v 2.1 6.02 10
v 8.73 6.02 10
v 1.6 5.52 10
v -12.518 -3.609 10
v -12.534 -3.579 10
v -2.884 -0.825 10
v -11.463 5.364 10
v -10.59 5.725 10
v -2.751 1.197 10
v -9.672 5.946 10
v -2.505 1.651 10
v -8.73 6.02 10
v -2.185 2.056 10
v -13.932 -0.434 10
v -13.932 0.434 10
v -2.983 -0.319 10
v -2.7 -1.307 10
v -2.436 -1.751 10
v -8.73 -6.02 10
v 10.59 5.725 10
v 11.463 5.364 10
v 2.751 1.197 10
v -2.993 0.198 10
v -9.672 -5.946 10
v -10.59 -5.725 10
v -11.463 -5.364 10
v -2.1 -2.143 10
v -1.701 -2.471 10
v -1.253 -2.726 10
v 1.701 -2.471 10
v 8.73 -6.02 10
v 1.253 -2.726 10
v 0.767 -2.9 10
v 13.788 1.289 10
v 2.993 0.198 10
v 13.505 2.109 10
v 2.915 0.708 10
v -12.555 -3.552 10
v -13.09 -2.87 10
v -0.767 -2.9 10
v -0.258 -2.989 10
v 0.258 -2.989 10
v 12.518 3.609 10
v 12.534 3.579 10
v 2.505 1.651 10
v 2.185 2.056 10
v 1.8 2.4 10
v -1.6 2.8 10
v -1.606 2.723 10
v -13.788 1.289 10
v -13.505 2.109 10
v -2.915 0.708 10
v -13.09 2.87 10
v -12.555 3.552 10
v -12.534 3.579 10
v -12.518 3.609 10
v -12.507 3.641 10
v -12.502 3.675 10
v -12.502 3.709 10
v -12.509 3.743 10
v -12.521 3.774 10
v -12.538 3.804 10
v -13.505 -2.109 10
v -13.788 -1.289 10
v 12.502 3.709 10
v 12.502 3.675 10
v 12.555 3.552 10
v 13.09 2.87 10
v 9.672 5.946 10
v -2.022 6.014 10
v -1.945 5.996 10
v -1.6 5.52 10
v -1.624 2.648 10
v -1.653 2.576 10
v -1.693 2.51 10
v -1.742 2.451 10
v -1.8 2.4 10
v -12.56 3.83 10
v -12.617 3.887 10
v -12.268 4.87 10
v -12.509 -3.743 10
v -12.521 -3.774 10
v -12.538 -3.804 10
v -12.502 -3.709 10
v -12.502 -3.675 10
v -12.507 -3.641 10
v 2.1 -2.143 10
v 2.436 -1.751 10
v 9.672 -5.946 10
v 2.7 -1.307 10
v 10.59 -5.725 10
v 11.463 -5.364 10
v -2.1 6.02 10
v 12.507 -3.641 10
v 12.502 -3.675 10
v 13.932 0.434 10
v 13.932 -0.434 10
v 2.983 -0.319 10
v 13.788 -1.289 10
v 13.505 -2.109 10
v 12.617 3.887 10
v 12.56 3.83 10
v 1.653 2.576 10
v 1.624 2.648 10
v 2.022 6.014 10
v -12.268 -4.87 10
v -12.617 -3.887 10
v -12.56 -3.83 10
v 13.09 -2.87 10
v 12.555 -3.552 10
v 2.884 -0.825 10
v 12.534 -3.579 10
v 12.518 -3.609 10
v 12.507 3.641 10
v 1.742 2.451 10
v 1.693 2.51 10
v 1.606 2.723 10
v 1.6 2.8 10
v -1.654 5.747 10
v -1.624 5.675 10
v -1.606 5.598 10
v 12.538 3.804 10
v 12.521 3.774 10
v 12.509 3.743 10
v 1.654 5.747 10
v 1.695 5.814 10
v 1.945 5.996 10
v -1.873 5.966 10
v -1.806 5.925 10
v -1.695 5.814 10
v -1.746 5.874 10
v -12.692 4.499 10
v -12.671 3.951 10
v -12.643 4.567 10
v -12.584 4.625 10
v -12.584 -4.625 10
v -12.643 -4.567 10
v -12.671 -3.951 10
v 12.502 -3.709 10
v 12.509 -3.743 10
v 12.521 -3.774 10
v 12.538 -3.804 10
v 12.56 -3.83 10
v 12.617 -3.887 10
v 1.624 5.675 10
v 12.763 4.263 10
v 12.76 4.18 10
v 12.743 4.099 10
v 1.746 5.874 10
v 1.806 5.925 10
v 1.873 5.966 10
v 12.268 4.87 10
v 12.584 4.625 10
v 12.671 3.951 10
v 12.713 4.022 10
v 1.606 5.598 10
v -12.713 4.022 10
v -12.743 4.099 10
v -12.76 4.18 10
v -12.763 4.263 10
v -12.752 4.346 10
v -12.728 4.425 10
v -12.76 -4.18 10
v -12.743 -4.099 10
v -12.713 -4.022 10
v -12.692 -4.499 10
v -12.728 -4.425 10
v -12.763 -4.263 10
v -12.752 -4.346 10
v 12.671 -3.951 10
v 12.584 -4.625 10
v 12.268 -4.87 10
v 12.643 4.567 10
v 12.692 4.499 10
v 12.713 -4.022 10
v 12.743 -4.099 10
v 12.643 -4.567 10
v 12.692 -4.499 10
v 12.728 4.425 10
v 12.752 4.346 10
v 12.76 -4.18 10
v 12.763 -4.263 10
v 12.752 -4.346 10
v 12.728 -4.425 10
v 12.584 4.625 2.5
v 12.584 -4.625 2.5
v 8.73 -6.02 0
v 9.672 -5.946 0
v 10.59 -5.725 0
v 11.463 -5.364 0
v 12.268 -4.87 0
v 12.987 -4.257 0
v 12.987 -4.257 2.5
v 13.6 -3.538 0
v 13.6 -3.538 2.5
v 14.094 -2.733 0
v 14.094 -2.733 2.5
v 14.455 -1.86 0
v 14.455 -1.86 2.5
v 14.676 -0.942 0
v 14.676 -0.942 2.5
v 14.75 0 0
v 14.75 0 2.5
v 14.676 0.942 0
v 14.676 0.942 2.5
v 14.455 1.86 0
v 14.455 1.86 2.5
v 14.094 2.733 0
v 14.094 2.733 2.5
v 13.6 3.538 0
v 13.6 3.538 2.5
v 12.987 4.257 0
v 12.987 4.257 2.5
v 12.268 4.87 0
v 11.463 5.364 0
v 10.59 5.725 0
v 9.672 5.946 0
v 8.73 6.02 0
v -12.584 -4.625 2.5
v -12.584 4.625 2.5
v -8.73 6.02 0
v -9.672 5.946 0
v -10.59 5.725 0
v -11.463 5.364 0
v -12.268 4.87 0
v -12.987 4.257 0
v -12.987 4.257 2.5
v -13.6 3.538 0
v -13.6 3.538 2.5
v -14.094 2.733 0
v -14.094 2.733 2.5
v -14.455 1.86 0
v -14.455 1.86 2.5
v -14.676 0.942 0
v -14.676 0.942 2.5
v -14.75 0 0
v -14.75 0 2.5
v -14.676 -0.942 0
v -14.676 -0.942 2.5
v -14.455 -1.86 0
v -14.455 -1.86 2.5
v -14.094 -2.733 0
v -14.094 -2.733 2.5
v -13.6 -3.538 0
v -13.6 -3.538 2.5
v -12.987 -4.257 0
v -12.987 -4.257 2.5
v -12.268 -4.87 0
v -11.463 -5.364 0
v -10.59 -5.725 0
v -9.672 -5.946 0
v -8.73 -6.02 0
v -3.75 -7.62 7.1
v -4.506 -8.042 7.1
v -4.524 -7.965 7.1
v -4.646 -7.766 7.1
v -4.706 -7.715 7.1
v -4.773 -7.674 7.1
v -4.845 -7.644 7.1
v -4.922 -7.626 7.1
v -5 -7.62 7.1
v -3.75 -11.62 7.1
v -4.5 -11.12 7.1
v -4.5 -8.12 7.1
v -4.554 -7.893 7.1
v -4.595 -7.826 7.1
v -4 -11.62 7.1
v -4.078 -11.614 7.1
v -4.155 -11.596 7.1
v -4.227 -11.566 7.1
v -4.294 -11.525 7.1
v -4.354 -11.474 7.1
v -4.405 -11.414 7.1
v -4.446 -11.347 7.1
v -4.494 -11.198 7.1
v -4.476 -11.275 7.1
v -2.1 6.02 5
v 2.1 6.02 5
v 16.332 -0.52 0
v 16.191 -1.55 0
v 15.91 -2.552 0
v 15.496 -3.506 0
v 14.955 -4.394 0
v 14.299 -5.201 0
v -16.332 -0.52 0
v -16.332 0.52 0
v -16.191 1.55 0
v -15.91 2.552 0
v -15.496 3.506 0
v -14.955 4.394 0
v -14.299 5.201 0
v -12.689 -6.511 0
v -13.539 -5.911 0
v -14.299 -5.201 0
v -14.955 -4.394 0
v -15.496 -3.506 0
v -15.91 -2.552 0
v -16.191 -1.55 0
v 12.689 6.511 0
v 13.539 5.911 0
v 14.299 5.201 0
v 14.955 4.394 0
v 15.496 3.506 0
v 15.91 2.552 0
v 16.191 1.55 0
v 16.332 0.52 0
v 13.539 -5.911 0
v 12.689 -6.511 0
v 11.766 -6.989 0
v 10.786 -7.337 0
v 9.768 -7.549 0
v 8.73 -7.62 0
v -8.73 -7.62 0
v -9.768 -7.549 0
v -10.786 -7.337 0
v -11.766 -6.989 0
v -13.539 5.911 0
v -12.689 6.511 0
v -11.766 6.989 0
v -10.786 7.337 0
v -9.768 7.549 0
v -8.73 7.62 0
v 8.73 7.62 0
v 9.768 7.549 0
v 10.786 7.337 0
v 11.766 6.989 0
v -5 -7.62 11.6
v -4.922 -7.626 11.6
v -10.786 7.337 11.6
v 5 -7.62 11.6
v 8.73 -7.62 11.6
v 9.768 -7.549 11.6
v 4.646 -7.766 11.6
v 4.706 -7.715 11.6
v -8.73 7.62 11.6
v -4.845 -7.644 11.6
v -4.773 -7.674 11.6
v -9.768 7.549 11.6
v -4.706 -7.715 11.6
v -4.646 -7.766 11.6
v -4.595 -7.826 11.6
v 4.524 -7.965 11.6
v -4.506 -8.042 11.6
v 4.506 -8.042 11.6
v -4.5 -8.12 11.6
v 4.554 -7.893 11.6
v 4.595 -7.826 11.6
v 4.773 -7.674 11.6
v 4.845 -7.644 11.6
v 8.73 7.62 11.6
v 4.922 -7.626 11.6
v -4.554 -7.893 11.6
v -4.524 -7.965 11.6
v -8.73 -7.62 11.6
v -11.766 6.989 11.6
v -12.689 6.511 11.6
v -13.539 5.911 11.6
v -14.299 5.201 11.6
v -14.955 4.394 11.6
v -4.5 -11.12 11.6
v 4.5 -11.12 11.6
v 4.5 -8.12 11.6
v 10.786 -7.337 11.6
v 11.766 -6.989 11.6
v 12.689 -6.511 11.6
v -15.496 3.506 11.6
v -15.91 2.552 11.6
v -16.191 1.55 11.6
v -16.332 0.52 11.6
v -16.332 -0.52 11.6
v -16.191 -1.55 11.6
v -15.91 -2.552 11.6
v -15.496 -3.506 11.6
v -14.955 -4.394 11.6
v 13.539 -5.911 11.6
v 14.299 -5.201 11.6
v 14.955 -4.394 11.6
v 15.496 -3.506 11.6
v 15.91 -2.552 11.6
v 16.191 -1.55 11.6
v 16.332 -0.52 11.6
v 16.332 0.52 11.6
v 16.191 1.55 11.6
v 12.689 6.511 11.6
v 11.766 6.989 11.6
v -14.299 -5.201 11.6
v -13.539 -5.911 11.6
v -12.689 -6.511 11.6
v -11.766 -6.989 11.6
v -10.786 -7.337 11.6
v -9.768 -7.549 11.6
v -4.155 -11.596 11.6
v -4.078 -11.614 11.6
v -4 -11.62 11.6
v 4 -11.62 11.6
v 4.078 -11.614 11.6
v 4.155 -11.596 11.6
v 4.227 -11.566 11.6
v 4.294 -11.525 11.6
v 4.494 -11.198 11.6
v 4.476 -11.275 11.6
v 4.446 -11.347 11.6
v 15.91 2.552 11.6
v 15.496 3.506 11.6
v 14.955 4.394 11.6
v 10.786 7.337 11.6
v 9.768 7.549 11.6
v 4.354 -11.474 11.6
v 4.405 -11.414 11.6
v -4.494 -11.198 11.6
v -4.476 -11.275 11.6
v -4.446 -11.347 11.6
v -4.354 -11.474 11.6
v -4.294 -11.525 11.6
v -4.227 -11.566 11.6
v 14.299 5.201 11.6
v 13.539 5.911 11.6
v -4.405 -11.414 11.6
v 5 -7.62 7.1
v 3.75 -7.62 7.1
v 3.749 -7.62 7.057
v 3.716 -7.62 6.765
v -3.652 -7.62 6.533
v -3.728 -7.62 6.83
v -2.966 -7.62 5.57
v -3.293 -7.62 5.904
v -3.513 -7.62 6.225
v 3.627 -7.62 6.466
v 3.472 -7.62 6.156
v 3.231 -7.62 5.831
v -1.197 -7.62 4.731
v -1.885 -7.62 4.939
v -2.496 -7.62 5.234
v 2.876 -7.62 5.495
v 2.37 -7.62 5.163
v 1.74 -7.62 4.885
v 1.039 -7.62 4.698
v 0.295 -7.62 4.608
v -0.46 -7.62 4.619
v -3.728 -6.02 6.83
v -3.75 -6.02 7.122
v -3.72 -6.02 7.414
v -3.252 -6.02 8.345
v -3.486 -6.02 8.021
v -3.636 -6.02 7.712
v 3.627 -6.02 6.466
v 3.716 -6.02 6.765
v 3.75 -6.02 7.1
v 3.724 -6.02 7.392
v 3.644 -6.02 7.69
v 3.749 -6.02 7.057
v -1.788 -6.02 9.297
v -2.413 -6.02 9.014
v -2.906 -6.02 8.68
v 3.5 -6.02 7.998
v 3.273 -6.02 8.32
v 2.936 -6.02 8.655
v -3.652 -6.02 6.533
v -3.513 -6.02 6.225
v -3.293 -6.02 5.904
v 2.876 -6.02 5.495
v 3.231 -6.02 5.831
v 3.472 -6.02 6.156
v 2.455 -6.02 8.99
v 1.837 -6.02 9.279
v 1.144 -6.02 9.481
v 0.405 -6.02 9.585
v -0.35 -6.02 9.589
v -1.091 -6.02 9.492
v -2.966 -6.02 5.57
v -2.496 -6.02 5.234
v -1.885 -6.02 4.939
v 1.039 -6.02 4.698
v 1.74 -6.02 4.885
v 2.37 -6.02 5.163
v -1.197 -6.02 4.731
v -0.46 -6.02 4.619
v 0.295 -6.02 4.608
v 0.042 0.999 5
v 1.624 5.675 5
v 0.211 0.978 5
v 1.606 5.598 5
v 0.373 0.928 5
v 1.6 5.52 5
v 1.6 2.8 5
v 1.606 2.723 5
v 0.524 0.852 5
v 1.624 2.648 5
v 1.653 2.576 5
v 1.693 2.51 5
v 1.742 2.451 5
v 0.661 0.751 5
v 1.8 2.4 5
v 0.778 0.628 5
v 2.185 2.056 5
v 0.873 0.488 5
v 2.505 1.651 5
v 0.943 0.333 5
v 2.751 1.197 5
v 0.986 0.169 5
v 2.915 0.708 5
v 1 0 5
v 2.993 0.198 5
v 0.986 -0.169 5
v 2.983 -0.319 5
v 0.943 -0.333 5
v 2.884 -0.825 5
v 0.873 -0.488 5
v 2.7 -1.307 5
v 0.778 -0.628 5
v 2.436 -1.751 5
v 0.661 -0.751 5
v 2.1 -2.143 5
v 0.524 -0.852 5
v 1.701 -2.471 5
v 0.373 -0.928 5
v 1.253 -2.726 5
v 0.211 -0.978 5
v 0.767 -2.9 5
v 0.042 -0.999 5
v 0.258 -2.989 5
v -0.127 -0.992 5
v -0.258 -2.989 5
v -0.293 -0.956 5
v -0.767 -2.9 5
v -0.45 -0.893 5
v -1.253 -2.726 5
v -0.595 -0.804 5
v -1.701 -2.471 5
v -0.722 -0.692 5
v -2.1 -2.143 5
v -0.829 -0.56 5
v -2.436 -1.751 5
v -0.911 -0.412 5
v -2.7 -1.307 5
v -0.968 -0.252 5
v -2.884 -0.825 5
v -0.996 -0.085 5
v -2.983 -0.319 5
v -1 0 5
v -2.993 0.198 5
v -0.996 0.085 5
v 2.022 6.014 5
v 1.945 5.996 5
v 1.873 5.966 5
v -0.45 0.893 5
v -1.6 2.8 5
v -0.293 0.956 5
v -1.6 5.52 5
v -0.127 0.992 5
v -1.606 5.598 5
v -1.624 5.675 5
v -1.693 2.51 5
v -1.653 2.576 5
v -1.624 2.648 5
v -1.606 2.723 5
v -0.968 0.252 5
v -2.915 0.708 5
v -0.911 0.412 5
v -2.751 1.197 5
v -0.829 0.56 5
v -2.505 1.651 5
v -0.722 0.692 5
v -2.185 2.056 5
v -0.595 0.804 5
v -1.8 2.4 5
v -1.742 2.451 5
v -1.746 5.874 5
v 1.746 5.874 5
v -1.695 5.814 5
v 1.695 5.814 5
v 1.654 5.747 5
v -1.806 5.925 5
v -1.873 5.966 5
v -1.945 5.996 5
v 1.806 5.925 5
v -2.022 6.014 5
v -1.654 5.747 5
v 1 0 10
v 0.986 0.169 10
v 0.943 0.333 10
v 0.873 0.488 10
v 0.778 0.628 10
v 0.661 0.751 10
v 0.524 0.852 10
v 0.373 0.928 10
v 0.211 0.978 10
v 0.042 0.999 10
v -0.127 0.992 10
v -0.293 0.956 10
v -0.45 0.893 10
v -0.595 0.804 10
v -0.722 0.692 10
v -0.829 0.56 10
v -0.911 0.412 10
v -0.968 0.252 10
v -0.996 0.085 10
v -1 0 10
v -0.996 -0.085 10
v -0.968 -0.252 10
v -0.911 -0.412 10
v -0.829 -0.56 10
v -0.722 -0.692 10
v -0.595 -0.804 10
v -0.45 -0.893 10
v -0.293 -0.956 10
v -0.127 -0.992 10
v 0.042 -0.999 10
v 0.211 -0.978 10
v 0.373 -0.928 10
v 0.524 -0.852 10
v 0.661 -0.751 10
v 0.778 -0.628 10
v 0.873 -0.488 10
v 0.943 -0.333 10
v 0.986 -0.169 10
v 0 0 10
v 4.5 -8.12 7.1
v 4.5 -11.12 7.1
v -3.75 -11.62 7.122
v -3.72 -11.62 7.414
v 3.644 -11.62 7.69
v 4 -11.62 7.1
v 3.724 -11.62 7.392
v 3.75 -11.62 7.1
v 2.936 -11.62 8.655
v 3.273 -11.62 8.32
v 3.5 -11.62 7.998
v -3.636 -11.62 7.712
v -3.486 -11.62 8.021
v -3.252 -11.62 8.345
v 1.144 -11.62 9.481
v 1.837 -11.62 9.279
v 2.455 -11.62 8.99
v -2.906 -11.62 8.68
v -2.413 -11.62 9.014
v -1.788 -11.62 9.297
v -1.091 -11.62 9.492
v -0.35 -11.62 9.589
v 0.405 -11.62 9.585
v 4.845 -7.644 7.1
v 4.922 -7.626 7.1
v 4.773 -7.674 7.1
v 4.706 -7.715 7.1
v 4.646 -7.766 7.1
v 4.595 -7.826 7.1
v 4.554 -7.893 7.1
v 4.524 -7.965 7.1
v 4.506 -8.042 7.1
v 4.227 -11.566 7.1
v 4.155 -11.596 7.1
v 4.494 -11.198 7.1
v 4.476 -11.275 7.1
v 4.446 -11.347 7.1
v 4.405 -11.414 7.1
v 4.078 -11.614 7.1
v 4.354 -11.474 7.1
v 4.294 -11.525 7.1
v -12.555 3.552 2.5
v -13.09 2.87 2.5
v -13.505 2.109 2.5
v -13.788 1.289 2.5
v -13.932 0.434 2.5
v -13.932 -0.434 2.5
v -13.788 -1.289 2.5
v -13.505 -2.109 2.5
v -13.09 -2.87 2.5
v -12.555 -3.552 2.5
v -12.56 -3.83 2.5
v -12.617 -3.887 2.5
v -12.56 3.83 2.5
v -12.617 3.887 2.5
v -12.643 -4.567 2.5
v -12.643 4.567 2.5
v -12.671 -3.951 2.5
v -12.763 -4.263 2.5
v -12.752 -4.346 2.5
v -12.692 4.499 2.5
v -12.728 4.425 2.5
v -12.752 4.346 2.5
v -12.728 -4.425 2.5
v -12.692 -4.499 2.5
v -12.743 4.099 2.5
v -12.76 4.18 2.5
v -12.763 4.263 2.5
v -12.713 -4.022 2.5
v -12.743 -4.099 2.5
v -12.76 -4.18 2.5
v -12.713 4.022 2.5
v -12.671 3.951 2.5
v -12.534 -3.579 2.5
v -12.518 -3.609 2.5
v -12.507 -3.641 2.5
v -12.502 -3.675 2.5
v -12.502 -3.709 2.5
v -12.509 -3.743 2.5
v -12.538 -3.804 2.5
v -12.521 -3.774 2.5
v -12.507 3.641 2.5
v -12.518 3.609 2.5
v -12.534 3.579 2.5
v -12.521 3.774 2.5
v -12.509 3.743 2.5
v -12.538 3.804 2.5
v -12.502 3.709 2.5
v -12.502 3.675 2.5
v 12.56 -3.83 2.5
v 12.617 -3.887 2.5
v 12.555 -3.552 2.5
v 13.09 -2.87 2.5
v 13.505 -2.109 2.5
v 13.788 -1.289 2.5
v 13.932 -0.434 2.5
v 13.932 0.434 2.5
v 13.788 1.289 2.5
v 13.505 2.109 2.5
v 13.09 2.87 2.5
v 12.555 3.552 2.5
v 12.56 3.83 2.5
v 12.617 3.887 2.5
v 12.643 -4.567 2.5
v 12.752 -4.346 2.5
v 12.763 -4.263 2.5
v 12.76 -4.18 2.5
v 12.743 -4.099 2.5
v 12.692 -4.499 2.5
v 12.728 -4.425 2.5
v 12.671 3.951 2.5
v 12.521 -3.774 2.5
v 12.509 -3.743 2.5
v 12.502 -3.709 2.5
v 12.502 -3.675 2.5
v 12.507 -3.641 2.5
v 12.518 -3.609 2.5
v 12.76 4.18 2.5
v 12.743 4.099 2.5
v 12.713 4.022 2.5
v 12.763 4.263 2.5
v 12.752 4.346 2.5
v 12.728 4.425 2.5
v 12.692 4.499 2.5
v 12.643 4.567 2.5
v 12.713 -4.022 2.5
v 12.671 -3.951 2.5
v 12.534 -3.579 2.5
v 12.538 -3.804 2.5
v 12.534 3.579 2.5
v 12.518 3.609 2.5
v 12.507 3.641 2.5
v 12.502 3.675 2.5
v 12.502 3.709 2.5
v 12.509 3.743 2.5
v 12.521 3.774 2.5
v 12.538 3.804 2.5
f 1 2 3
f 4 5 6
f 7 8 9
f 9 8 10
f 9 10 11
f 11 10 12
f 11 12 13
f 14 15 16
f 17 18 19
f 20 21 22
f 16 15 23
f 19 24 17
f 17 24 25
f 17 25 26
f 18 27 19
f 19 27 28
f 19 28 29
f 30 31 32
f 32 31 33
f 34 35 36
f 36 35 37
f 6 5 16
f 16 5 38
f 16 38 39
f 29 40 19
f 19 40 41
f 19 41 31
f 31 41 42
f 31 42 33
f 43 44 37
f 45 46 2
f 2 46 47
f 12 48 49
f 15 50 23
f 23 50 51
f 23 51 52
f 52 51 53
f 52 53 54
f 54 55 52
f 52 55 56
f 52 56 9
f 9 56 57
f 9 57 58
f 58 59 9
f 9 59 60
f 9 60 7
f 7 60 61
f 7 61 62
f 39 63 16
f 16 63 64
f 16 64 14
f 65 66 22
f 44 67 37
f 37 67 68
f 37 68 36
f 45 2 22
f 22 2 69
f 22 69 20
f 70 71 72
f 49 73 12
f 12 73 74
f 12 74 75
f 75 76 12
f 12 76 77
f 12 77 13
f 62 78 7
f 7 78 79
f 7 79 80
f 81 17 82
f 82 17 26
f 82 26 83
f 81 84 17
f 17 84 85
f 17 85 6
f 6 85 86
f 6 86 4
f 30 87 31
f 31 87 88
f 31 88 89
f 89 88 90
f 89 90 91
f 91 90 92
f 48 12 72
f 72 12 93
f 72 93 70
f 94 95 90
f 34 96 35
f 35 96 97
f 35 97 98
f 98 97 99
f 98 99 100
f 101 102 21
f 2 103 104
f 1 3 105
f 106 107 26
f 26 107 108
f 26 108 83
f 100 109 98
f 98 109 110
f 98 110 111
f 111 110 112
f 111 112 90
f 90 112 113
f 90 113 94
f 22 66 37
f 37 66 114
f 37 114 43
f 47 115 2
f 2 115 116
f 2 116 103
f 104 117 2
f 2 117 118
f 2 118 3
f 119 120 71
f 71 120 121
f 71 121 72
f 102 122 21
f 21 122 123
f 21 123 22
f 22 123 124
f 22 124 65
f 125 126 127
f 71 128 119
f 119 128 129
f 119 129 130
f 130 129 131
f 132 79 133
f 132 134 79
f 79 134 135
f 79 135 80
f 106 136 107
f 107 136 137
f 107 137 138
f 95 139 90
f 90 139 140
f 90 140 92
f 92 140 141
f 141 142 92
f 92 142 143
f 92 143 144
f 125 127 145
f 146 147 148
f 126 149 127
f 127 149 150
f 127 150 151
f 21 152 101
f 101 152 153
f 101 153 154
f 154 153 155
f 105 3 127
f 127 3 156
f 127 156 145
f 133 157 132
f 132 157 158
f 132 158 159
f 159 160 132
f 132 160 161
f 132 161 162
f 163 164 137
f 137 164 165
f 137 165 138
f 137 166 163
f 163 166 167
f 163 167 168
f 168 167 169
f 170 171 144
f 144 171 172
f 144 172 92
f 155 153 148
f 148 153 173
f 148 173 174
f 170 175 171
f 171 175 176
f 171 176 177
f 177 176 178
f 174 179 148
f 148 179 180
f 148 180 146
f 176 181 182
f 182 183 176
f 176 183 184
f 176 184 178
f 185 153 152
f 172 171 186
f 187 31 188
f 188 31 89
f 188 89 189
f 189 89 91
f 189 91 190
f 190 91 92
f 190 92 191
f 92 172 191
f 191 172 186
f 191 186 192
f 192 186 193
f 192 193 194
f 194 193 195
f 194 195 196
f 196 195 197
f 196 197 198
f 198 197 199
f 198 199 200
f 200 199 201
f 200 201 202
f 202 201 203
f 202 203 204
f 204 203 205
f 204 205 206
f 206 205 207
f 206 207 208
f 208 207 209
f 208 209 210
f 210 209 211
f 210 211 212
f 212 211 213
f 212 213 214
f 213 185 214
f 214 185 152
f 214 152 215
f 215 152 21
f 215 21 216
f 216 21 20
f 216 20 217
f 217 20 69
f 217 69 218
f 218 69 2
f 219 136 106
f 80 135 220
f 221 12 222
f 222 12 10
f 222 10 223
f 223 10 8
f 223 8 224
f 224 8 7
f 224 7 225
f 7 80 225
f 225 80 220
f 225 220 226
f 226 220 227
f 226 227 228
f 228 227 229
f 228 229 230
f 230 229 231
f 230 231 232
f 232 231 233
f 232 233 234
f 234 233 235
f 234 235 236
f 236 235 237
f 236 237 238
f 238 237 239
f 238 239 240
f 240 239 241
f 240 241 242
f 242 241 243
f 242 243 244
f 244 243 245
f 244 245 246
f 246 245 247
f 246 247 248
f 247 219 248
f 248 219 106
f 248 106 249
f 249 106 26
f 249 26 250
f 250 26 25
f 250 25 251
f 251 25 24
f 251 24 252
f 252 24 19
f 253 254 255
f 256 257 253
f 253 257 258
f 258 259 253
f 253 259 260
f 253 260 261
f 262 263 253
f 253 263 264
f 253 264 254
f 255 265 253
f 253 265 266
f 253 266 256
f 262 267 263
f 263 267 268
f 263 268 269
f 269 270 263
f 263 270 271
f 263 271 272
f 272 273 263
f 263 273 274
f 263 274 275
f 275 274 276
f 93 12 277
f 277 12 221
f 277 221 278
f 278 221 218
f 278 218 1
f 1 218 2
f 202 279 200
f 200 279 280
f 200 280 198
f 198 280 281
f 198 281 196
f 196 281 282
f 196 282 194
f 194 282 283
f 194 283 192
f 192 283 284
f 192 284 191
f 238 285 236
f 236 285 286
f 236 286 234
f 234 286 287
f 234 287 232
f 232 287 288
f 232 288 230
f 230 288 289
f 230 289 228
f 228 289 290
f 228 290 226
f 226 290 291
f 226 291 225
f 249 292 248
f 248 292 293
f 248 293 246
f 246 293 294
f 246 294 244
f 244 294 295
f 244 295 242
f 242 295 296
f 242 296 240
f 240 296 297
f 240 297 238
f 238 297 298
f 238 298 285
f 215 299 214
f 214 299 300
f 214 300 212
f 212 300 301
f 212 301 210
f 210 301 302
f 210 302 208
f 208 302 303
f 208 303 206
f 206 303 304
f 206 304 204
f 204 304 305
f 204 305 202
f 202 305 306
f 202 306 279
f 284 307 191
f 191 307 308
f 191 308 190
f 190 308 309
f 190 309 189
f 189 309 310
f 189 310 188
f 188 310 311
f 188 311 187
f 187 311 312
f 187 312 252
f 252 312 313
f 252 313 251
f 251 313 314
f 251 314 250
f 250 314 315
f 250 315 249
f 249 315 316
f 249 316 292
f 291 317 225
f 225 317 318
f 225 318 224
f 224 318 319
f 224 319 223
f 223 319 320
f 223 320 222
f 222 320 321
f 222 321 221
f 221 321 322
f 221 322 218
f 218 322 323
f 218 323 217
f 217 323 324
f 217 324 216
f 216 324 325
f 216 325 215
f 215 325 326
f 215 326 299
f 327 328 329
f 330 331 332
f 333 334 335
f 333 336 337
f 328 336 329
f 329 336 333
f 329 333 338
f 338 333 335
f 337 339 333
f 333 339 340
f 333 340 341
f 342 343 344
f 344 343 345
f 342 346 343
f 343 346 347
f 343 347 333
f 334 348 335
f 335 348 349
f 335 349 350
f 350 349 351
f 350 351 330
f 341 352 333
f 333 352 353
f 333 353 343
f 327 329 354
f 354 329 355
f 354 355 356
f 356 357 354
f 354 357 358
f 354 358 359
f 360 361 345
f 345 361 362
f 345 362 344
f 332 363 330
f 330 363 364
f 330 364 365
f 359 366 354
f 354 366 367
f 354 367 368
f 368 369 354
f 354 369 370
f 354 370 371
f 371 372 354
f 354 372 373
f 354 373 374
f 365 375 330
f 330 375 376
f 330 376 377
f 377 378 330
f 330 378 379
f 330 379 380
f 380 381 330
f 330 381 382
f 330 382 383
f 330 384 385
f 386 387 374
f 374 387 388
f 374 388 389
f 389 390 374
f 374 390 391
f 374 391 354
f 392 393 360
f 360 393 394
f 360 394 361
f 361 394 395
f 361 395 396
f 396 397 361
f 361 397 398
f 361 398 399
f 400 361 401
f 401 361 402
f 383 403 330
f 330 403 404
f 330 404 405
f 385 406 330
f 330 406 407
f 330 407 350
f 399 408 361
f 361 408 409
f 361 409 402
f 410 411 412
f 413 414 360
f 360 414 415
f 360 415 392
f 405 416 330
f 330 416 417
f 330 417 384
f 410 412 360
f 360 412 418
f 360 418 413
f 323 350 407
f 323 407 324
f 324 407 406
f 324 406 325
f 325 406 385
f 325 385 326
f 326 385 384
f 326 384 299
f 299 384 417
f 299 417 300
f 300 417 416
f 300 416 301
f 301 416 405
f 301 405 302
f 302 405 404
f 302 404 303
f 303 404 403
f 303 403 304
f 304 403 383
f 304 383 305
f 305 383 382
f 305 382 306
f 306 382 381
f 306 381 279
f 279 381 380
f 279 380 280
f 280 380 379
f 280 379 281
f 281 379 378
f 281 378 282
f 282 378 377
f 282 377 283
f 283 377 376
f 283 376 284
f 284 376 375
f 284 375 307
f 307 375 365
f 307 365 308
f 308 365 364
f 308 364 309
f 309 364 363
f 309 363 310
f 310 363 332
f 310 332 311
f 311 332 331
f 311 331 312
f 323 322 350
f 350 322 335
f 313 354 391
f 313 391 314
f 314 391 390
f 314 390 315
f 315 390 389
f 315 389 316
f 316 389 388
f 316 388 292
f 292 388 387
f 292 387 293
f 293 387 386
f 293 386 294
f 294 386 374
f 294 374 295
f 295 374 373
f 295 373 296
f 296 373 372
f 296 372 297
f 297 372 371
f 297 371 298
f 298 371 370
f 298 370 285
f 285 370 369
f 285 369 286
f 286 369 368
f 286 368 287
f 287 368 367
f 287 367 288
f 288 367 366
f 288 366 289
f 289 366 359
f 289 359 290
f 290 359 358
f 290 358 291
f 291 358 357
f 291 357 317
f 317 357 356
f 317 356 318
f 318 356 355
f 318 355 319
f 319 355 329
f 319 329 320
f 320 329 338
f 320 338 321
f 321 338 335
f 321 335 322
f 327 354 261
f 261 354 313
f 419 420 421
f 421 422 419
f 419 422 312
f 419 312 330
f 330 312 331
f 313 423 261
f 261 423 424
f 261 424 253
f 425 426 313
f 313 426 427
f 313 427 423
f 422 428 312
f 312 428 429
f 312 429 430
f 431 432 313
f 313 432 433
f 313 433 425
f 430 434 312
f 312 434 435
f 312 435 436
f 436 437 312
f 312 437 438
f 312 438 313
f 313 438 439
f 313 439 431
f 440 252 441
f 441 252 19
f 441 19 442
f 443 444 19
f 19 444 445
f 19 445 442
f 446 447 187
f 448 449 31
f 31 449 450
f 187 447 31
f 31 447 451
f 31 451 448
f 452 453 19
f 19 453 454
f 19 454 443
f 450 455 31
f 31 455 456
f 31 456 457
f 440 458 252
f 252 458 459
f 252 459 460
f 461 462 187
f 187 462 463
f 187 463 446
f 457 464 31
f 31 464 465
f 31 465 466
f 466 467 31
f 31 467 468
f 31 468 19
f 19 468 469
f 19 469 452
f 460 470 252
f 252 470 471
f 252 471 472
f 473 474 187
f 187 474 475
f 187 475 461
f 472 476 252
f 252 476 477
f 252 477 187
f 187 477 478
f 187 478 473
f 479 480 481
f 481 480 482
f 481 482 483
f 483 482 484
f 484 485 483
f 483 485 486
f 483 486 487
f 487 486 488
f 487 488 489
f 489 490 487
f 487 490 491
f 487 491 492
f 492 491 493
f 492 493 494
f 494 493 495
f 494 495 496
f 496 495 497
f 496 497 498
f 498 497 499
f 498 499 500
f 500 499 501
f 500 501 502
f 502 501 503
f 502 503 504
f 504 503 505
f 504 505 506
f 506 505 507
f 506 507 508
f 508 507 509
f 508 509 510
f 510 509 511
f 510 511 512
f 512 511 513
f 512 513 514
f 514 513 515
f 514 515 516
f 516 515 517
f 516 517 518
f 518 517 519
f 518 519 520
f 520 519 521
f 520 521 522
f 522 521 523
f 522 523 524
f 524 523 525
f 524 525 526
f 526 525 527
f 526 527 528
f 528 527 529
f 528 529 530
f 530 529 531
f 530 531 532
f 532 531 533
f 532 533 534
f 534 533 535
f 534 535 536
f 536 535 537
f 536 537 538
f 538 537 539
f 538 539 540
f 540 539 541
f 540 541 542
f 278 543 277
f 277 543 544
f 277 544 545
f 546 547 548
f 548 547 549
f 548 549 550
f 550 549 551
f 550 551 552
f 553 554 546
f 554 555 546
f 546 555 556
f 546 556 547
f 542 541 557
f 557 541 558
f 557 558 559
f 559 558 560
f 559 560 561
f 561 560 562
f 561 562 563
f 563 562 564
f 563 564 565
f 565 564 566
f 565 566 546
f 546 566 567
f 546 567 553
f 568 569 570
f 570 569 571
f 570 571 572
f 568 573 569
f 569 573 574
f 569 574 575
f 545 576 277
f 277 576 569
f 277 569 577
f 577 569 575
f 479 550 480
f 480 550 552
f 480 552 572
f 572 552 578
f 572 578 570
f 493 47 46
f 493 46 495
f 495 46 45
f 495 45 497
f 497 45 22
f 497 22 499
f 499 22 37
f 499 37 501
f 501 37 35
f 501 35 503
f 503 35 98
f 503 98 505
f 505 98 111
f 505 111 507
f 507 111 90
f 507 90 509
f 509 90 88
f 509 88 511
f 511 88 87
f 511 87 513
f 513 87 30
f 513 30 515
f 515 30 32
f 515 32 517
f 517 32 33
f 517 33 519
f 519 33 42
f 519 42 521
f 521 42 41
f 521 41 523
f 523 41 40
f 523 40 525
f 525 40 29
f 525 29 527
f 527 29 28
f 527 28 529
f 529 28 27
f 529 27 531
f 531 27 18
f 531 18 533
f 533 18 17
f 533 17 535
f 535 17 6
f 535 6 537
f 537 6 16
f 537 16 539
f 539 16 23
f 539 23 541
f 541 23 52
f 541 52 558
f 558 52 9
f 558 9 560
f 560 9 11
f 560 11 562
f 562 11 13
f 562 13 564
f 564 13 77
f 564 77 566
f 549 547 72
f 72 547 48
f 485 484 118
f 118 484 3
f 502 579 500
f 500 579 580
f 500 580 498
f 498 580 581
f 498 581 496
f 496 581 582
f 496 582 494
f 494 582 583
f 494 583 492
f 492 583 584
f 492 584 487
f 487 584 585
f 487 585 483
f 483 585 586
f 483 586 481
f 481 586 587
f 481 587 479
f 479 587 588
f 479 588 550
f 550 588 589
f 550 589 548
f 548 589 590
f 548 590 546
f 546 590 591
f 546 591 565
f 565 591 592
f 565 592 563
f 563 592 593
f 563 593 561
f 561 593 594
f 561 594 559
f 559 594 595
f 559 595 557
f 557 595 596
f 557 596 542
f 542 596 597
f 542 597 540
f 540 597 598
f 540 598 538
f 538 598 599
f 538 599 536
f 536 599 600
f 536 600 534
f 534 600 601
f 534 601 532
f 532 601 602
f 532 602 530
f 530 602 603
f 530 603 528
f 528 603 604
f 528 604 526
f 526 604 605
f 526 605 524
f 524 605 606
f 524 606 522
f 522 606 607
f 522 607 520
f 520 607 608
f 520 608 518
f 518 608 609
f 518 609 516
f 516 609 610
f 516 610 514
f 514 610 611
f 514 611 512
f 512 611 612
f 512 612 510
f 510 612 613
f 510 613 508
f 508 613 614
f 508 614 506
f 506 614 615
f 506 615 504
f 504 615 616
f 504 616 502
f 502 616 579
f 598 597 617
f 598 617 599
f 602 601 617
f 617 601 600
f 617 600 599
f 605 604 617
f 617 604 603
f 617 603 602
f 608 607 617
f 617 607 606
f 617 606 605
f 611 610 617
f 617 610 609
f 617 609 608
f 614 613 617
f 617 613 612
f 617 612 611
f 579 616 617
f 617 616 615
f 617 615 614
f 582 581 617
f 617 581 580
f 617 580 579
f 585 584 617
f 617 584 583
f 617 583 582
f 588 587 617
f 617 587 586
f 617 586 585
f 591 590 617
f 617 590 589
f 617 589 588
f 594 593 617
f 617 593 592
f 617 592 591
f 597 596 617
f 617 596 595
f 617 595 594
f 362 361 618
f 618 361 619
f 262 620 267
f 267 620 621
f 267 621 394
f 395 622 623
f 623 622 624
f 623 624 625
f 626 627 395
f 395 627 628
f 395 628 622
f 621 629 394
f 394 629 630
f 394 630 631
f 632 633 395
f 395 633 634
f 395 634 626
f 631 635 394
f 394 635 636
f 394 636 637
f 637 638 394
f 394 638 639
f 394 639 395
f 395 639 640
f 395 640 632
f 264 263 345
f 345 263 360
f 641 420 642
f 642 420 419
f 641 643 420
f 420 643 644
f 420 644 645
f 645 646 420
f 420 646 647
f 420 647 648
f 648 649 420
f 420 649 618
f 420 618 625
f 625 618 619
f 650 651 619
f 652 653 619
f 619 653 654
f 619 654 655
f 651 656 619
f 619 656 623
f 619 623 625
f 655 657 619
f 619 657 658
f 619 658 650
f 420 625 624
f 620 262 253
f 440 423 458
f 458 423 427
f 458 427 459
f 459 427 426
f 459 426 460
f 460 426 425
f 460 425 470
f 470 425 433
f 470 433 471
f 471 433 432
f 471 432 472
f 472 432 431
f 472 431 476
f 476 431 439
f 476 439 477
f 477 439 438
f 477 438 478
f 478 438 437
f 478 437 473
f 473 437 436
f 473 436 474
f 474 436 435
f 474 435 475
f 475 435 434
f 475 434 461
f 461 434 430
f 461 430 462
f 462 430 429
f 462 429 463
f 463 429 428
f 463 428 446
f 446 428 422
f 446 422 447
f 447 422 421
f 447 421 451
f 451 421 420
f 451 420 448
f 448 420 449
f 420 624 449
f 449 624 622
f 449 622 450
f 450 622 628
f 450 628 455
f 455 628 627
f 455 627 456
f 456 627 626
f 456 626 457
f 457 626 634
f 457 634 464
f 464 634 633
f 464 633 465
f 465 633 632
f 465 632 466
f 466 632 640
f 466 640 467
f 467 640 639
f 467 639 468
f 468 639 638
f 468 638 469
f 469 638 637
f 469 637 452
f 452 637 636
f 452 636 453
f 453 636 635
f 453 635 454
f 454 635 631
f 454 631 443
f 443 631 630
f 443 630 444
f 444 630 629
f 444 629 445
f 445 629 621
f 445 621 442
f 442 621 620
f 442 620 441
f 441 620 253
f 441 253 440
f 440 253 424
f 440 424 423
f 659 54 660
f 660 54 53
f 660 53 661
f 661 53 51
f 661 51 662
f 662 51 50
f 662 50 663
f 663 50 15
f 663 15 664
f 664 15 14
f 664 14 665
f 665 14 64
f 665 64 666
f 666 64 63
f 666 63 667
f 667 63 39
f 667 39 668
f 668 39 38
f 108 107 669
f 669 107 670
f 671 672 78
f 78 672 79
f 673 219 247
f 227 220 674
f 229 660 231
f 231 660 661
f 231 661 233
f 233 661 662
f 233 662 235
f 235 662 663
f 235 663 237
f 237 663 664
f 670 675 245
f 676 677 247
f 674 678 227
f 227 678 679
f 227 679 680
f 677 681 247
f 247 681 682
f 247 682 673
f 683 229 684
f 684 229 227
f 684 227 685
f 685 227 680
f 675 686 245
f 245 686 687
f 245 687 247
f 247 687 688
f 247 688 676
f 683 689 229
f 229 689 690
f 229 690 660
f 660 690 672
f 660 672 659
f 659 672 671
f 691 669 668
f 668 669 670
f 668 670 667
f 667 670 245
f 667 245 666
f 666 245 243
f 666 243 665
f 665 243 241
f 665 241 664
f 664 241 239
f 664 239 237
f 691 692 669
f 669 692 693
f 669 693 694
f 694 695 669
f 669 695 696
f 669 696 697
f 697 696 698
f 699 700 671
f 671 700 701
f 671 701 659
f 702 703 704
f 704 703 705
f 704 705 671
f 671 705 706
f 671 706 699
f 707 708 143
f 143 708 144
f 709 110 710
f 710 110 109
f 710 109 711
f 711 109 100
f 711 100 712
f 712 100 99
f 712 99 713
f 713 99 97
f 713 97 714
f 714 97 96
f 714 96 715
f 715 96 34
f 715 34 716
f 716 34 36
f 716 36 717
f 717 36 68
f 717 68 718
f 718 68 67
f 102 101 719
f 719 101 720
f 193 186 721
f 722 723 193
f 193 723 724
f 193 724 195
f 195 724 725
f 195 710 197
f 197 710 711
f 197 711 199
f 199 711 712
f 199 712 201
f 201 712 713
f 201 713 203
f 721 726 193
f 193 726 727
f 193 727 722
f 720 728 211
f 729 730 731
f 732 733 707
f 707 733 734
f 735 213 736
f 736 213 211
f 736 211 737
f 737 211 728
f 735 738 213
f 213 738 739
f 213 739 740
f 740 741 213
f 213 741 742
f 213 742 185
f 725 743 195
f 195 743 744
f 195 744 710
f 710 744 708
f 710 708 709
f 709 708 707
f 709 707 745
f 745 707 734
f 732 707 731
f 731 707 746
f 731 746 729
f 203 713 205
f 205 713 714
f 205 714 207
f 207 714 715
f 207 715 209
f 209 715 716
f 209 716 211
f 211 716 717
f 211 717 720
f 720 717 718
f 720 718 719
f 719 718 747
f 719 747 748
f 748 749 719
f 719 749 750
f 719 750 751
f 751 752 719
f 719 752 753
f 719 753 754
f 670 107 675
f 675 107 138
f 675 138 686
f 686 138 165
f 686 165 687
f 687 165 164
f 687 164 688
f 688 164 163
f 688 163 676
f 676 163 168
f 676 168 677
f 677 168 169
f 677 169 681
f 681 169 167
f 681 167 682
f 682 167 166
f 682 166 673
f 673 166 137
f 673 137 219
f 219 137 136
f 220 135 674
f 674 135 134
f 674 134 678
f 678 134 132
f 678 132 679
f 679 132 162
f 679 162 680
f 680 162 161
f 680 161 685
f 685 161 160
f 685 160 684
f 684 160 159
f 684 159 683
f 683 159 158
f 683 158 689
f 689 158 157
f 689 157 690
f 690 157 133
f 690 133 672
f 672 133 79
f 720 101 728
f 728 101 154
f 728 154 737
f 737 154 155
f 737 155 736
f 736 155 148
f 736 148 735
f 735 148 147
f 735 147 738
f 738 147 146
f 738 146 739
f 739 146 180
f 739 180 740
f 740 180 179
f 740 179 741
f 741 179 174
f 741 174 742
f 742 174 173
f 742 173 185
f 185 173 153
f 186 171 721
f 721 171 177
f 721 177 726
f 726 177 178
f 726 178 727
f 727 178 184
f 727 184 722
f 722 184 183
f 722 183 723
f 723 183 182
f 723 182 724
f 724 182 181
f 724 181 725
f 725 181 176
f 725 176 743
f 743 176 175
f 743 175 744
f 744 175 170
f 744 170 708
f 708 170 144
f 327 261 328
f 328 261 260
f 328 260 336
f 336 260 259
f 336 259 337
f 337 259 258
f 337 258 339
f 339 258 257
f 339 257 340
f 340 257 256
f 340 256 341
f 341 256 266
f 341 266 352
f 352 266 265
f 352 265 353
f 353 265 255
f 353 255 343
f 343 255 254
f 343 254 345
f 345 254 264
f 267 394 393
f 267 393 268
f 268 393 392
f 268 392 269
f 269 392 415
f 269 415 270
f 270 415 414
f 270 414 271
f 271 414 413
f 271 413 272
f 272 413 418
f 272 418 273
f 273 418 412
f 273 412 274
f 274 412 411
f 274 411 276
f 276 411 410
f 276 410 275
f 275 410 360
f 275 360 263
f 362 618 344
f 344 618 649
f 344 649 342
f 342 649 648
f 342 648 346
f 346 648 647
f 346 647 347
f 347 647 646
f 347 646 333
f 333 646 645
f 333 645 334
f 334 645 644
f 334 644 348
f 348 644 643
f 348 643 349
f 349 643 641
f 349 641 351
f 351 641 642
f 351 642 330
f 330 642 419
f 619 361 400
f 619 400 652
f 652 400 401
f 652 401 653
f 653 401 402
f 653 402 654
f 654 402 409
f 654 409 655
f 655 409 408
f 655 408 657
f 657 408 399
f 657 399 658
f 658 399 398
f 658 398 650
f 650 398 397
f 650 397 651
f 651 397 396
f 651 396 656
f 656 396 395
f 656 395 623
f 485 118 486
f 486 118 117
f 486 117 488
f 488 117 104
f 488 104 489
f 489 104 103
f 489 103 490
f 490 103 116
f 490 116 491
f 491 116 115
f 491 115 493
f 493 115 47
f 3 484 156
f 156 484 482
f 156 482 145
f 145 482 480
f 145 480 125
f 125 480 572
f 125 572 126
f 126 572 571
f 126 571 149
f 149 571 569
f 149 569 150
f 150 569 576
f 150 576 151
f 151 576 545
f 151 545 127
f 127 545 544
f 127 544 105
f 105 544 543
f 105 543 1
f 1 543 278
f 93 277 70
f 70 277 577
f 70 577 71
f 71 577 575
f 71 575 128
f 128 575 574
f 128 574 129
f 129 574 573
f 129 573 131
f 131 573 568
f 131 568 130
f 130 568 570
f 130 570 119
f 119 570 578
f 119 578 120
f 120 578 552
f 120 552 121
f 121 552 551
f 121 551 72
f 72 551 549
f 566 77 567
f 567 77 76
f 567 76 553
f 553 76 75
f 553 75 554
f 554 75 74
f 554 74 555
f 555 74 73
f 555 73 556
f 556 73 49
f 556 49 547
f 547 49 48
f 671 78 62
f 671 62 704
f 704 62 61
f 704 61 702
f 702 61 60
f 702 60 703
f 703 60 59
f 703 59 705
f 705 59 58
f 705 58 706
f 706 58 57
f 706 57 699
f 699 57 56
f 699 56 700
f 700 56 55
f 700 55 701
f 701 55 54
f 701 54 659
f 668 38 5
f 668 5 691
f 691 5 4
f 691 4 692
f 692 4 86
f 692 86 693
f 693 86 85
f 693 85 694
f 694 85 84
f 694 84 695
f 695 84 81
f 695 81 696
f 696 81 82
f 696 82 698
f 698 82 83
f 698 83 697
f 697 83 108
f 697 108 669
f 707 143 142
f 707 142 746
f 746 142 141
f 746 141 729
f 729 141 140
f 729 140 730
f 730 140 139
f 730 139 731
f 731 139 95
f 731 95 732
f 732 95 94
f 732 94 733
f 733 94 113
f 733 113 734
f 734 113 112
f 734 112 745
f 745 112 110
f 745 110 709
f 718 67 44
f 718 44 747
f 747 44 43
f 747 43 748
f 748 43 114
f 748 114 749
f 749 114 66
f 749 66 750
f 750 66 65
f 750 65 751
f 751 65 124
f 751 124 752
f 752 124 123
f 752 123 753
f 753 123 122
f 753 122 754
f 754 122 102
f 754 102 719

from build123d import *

# Parameters (mm, degrees)
THICKEN1_DEPTH      = 11.6
THICKEN1_START      = 10
THICKEN1_2_DEPTH    = 1.6
SKETCH2_R           = 1
BOSS_EXTRUDE1_DEPTH = 5
SKETCH3_W           = 9
SKETCH3_H           = 4
BOSS_EXTRUDE2_DEPTH = 4.5
CUT_EXTRUDE1_REACH  = 29.786
SKETCH4_RX          = 3.75
SKETCH4_RY          = 2.5
BOSS_EXTRUDE3_START = 7.5
BOSS_EXTRUDE3_DEPTH = 7.5
FILLET1_R           = 0.5
FILLET2_R           = 0.2


# Read off the part's stored shape, not the designer's step: Thicken1
with BuildPart() as part:
    # Thicken1 outline → Thicken1 (new body)
    with BuildSketch(Plane.XY):
        with BuildLine():
            Line((-8.73, -7.62), (8.73, -7.62))
            ThreePointArc((8.73, -7.62), (16.35, 0), (8.73, 7.62))
            Line((8.73, 7.62), (-8.73, 7.62))
            ThreePointArc((-8.73, 7.62), (-16.35, 0), (-8.73, -7.62))
        make_face()
        with BuildLine():
            ThreePointArc((8.73, 6.02), (14.75, 0), (8.73, -6.02))
            Line((8.73, -6.02), (-8.73, -6.02))
            ThreePointArc((-8.73, -6.02), (-14.75, 0), (-8.73, 6.02))
            Line((-8.73, 6.02), (8.73, 6.02))
        make_face(mode=Mode.SUBTRACT)
    extrude(amount=THICKEN1_DEPTH)

    # Thicken1 2 outline → Thicken1 2 (add)
    with BuildSketch(Plane.XY.offset(THICKEN1_START)):
        with BuildLine():
            Line((-8.73, -6.02), (8.73, -6.02))
            ThreePointArc((8.73, -6.02), (14.75, 0), (8.73, 6.02))
            Line((8.73, 6.02), (-8.73, 6.02))
            ThreePointArc((-8.73, 6.02), (-14.75, 0), (-8.73, -6.02))
        make_face()
    extrude(amount=THICKEN1_2_DEPTH)

    # Sketch2 → Boss-Extrude1 (add)
    with BuildSketch(Plane(origin=(0, 0, 10), x_dir=(-1, 0, 0), z_dir=(0, 0, -1))):
        with BuildLine():
            Line((1.6, 6.02), (-1.6, 6.02))
            Line((-1.6, 6.02), (-1.6, 2.537715508))
            ThreePointArc((-1.6, 2.537715508), (-2.537715508, -1.6), (1.6, -2.537715508))
            ThreePointArc((1.6, -2.537715508), (3, 0), (1.6, 2.537715508))
            Line((1.6, 2.537715508), (1.6, 6.02))
        make_face()
        Circle(SKETCH2_R, mode=Mode.SUBTRACT)
    extrude(amount=BOSS_EXTRUDE1_DEPTH)

    # Sketch3 → Boss-Extrude2 (add)
    with BuildSketch(Plane.XY.offset(11.6)):
        with Locations((0, -9.62)):
            Rectangle(SKETCH3_W, SKETCH3_H)
    extrude(amount=-BOSS_EXTRUDE2_DEPTH)

    # Cut-Extrude1: up to this face of the body (flat: up to its plane)
    cut_extrude1_end = Plane(part.part.faces().sort_by_distance((0, -6.02, 5))[0])
    # Sketch4 → Cut-Extrude1 (cut, up to the picked face)
    with BuildSketch(Plane.XZ.offset(11.62), mode=Mode.PRIVATE) as cut_extrude1_sk1:
        with Locations(Location((0, 7.1), (0, 0, 0))):
            Ellipse(SKETCH4_RX, SKETCH4_RY)
    cut_extrude1_tool1 = split(extrude(cut_extrude1_sk1.sketch, amount=-CUT_EXTRUDE1_REACH, mode=Mode.PRIVATE), bisect_by=cut_extrude1_end, keep=Keep.BOTH, mode=Mode.PRIVATE)
    add(cut_extrude1_tool1.solids().sort_by(Axis((0, -11.62, 7.1), (0, 1, 0)))[0], mode=Mode.SUBTRACT)

    # Sketch6 → Boss-Extrude3 (add)
    with BuildSketch(Plane(origin=(0, 0, 10), x_dir=(-1, 0, 0), z_dir=(0, 0, -1)).offset(BOSS_EXTRUDE3_START)):
        with BuildLine():
            Line((-12.421097398, -3.691097398), (-12.986782823, -4.256782823))
            ThreePointArc((-12.986782823, -4.256782823), (-14.75, 0), (-12.986782823, 4.256782823))
            Line((-12.986782823, 4.256782823), (-12.421097398, 3.691097398))
            ThreePointArc((-12.421097398, 3.691097398), (-13.95, 0), (-12.421097398, -3.691097398))
        make_face()
        with BuildLine():
            Line((12.986782823, -4.256782823), (12.421097398, -3.691097398))
            ThreePointArc((12.421097398, -3.691097398), (13.95, 0), (12.421097398, 3.691097398))
            Line((12.421097398, 3.691097398), (12.986782823, 4.256782823))
            ThreePointArc((12.986782823, 4.256782823), (14.75, 0), (12.986782823, -4.256782823))
        make_face()
    extrude(amount=-BOSS_EXTRUDE3_DEPTH)

    # Fillet1
    fillet1_edges = [part.edges().sort_by_distance(p)[0] for p in [
        (-4.5, -7.62, 9.35),
        (-4.5, -11.62, 9.35),
        (4.5, -7.62, 9.35),
        (4.5, -11.62, 9.35),
        (1.6, 2.537715508, 7.5),
        (1.6, 6.02, 7.5),
        (-1.6, 6.02, 7.5),
        (-1.6, 2.537715508, 7.5),
        (-12.986782823, -4.256782823, 6.25),
        (-12.986782823, 4.256782823, 6.25),
        (12.986782823, 4.256782823, 6.25),
        (12.986782823, -4.256782823, 6.25),
    ]]
    fillet(fillet1_edges, radius=FILLET1_R)

    # Fillet2
    fillet2_edges = [part.edges().sort_by_distance(p)[0] for p in [
        (12.421097398, -3.691097398, 6.25),
        (12.421097398, 3.691097398, 6.25),
        (-12.421097398, 3.691097398, 6.25),
        (-12.421097398, -3.691097398, 6.25),
    ]]
    fillet(fillet2_edges, radius=FILLET2_R)


solid = part.part
